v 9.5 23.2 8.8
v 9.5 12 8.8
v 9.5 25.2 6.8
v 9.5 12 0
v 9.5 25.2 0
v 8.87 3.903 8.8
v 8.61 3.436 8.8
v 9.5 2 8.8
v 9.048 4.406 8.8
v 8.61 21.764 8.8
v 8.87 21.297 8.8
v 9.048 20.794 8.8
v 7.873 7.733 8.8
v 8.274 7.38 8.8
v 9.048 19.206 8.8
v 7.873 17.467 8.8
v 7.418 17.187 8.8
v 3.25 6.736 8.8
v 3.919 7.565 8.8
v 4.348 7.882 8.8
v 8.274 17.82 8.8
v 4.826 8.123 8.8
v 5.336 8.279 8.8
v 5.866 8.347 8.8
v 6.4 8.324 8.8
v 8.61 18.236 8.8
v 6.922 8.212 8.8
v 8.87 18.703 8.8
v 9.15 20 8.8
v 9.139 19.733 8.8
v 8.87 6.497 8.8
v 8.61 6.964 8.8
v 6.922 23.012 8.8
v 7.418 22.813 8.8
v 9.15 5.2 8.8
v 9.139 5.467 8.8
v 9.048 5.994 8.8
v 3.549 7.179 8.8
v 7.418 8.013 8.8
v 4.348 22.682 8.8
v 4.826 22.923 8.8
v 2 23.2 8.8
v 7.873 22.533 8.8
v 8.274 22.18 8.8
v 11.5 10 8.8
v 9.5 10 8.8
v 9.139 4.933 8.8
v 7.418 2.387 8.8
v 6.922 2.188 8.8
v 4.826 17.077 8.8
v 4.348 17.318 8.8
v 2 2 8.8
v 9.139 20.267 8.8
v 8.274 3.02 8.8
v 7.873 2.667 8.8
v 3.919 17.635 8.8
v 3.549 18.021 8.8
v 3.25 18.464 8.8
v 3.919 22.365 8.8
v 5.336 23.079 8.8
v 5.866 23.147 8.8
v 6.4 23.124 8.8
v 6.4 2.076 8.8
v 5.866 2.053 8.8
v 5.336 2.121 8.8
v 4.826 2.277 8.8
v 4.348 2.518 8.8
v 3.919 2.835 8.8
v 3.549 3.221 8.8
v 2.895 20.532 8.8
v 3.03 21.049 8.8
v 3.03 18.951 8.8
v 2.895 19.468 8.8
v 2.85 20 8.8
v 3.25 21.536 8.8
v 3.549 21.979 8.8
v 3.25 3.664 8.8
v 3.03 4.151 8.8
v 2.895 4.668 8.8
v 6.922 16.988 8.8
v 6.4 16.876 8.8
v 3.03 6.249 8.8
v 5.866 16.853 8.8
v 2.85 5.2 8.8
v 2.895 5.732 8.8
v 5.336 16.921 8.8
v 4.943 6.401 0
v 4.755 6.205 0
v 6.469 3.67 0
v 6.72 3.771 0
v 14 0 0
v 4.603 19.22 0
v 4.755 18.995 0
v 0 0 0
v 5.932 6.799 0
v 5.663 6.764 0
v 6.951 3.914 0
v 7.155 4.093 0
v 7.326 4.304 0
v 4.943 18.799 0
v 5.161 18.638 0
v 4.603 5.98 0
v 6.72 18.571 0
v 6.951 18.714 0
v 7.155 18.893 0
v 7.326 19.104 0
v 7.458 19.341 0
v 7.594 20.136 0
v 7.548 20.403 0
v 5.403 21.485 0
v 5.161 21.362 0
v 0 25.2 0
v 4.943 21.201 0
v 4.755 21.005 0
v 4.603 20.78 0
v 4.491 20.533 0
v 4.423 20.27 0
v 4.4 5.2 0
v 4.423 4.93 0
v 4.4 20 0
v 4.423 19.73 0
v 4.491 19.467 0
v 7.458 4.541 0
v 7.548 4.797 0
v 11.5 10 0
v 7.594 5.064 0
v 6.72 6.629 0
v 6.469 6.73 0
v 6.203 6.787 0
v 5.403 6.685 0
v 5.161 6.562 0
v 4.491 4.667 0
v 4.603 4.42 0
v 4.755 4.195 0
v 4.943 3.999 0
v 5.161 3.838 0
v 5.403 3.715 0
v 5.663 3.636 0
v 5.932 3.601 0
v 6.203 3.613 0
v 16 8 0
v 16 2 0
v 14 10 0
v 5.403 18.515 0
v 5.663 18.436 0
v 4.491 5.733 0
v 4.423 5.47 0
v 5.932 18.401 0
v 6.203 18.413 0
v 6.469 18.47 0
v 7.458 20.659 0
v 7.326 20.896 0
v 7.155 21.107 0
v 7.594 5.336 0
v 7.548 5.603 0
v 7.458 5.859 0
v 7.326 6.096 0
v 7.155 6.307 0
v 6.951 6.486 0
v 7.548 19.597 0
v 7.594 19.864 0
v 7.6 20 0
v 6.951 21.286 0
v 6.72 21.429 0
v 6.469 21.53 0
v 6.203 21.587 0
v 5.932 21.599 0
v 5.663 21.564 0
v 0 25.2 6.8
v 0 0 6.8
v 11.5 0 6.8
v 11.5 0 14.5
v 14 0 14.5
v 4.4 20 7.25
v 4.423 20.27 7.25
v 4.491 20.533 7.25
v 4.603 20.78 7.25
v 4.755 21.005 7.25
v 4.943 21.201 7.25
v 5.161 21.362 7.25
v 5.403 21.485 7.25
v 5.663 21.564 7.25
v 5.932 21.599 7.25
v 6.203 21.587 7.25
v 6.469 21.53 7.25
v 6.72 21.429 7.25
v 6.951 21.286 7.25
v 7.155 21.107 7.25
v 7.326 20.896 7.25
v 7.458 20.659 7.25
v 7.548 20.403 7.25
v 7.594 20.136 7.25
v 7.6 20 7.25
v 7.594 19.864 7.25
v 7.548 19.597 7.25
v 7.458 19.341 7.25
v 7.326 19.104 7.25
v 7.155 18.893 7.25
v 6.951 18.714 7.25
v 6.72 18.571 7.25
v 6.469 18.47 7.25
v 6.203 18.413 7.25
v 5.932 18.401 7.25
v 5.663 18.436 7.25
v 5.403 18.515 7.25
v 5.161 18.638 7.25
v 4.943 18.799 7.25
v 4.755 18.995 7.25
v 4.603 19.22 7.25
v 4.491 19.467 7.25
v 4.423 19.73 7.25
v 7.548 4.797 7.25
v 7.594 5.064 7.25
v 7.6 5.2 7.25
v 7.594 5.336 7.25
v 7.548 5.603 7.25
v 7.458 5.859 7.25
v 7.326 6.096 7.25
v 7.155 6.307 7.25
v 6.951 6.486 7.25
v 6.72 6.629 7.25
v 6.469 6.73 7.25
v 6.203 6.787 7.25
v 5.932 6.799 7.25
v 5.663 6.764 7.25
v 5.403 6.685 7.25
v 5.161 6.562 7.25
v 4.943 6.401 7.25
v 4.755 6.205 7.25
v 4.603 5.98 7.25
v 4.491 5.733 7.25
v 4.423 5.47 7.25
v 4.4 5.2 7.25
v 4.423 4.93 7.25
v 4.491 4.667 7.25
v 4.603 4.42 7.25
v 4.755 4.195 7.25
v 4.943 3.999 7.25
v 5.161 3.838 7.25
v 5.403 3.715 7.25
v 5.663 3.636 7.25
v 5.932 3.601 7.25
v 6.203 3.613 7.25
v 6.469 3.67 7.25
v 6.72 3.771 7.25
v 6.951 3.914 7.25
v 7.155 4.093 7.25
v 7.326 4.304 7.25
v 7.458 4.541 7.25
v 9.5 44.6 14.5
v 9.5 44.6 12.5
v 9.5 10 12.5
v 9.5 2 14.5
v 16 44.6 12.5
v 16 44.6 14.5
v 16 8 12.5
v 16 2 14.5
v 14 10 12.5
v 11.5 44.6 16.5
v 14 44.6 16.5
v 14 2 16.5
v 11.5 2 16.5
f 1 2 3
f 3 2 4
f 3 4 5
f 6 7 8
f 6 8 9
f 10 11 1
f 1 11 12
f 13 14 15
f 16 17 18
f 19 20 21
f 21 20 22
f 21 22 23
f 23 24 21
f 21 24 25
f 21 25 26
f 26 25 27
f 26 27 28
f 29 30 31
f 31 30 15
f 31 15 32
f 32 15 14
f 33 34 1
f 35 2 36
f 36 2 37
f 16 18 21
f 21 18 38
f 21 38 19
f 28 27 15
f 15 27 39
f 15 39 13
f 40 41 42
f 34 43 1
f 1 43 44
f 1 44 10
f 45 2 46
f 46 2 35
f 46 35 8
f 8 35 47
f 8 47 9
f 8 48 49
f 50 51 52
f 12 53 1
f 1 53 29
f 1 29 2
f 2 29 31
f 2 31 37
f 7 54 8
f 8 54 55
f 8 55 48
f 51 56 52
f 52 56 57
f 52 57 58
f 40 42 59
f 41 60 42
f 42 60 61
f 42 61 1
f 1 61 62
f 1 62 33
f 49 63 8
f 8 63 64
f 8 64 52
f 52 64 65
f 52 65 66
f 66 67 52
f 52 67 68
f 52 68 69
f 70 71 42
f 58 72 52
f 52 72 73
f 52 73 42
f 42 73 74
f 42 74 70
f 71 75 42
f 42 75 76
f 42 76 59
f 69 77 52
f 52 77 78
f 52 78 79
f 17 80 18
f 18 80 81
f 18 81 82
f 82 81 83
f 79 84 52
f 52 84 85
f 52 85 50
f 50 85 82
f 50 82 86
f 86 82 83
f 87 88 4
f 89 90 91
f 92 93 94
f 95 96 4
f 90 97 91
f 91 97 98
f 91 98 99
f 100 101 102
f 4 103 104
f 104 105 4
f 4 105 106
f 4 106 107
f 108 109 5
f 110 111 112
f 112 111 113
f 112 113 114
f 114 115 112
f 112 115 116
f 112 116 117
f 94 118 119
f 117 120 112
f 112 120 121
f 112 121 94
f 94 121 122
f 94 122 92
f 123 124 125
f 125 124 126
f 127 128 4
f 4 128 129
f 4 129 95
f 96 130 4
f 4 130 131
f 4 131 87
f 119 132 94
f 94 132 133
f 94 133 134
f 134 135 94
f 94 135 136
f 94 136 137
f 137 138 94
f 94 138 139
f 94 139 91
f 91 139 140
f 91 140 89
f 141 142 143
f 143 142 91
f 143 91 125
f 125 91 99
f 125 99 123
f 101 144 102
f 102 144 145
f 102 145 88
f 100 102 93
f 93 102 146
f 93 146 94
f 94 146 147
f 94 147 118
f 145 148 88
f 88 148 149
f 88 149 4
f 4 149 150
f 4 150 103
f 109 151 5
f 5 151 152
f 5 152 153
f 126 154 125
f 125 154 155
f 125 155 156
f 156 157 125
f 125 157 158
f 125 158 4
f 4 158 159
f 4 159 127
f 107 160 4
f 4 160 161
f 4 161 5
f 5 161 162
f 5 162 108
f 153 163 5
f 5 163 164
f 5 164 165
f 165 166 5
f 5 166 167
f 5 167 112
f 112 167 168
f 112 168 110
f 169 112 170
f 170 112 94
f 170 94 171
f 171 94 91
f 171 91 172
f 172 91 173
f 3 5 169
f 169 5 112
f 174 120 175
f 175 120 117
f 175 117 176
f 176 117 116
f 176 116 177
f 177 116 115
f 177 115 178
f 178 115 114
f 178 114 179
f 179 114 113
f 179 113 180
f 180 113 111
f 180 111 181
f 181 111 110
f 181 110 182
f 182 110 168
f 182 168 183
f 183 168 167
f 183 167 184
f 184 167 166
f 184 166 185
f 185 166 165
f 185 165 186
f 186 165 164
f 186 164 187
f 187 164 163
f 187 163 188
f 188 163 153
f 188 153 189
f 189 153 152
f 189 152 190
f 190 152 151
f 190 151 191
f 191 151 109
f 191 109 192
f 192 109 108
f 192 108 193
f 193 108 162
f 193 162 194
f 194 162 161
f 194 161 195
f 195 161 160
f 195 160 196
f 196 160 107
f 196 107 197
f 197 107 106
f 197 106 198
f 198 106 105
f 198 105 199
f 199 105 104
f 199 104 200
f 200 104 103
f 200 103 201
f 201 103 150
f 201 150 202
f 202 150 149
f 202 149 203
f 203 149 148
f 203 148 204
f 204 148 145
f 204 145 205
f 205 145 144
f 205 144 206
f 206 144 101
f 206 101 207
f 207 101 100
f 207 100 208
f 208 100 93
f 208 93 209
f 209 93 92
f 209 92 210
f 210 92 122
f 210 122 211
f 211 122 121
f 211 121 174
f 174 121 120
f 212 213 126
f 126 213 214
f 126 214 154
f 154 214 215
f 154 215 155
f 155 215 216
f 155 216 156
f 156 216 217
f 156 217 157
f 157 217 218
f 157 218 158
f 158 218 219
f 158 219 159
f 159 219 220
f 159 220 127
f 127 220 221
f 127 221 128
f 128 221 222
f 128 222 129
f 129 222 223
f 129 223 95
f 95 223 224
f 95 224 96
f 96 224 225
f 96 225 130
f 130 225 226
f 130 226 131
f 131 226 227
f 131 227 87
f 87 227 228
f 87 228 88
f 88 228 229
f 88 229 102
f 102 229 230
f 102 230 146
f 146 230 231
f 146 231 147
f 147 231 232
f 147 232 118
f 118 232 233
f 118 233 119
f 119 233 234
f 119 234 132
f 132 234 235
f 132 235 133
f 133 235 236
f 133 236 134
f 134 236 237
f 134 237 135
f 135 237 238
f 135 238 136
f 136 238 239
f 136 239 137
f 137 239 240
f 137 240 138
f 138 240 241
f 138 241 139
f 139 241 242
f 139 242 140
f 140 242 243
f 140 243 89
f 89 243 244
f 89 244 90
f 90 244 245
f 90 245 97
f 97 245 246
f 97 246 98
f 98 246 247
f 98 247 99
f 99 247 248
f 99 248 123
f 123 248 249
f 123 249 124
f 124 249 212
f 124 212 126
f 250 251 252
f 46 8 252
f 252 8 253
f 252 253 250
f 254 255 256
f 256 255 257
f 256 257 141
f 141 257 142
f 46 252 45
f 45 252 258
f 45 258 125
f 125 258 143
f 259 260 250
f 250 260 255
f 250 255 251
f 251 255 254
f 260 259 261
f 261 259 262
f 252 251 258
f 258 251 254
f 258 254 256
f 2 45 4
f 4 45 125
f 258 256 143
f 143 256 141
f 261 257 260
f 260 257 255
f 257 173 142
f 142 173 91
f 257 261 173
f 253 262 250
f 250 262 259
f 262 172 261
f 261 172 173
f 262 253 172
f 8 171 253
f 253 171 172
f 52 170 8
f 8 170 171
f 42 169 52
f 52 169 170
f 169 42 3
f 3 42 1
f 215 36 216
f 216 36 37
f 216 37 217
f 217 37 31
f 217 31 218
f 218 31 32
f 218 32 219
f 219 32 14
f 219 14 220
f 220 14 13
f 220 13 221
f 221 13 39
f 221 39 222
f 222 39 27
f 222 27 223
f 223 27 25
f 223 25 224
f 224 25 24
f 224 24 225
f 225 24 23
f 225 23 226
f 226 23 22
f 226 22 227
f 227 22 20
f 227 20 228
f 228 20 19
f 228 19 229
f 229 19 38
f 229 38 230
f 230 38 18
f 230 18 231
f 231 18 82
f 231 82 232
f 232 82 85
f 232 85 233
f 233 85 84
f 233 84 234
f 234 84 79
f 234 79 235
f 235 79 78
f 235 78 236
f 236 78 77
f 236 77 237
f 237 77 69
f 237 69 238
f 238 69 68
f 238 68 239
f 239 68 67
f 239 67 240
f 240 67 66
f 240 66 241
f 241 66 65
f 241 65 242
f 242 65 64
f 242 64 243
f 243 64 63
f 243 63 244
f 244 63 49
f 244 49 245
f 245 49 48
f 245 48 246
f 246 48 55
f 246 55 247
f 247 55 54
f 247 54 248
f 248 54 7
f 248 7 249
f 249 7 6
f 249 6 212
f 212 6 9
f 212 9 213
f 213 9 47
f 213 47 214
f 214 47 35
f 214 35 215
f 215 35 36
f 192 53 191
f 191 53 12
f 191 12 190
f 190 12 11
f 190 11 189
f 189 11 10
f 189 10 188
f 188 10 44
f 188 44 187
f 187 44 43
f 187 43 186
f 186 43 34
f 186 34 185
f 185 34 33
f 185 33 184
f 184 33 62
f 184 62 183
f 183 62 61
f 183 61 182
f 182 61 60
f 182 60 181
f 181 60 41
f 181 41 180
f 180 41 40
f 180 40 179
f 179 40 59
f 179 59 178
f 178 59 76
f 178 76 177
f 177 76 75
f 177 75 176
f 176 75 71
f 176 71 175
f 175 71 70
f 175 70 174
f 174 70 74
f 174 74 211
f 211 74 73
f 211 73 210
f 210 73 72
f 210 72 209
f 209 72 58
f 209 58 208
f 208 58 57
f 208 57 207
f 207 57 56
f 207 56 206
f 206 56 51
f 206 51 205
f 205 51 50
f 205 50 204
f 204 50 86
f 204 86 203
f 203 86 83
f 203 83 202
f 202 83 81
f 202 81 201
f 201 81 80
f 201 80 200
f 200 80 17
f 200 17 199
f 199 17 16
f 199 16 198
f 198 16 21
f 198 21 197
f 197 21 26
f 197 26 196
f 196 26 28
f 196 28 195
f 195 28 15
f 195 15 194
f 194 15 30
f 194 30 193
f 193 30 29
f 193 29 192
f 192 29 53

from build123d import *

# Parameters (mm, degrees)
SKETCH1_R                       = 1.6
BOSS_EXTRUDE1_DEPTH             = 8.8
SKETCH2_W                       = 6.5
SKETCH2_H                       = 10
BOSS_EXTRUDE2_DEPTH             = 3.7
BOSS_EXTRUDE2_DIRECTION_2_REACH = 30.332
SKETCH3_W                       = 6.5
SKETCH3_H                       = 44.6
BOSS_EXTRUDE3_DEPTH             = 4
CHAMFER1_SIZE                   = 2
CHAMFER2_SIZE                   = 1.55


with BuildPart() as part:
    # Sketch1 → Boss-Extrude1 (new body)
    with BuildSketch(Plane.XY):
        Polygon((0, 0), (8, 0), (9.5, 0), (9.5, 25.2), (8, 25.2), (0, 25.2), align=None)
        with Locations((6, 20)):
            Circle(SKETCH1_R, mode=Mode.SUBTRACT)
        with Locations(Location((6, 5.2, 0), (0, 0, 180))):
            Circle(SKETCH1_R, mode=Mode.SUBTRACT)
    extrude(amount=BOSS_EXTRUDE1_DEPTH)

    # Sketch2 → Boss-Extrude2 (add)
    with BuildSketch(Plane.XY.offset(8.8)):
        with Locations((12.75, 5)):
            Rectangle(SKETCH2_W, SKETCH2_H)
    extrude(amount=BOSS_EXTRUDE2_DEPTH)

    # Boss-Extrude2 direction 2: up to this face of the body (flat: up to its plane)
    boss_extrude2_direction_2_end = Plane(part.part.faces().sort_by_distance((4.659964898, 12.6, 0))[0])
    # Sketch2 → Boss-Extrude2 direction 2 (add, up to the picked face)
    with BuildSketch(Plane.XY.offset(8.8), mode=Mode.PRIVATE) as boss_extrude2_direction_2_sk1:
        with Locations((12.75, 5)):
            Rectangle(SKETCH2_W, SKETCH2_H)
    boss_extrude2_direction_2_tool1 = split(extrude(boss_extrude2_direction_2_sk1.sketch, amount=-BOSS_EXTRUDE2_DIRECTION_2_REACH, mode=Mode.PRIVATE), bisect_by=boss_extrude2_direction_2_end, keep=Keep.BOTH, mode=Mode.PRIVATE)
    add(boss_extrude2_direction_2_tool1.solids().sort_by(Axis((12.75, 5, 8.8), (0, 0, -1)))[0])

    # Sketch3 → Boss-Extrude3 (add)
    with BuildSketch(Plane.XY.offset(12.5)):
        with Locations((12.75, 22.3)):
            Rectangle(SKETCH3_W, SKETCH3_H)
    extrude(amount=BOSS_EXTRUDE3_DEPTH)

    # Chamfer1
    chamfer1_edges = [part.edges().sort_by_distance(p)[0] for p in [
        (4.75, 25.2, 8.8),
        (9.5, 0, 12.65),
        (16, 0, 8.25),
        (16, 10, 6.25),
        (9.5, 10, 4.4),
        (9.5, 22.3, 16.5),
        (12.75, 0, 16.5),
        (16, 22.3, 16.5),
        (0, 12.6, 8.8),
        (4.75, 0, 8.8),
    ]]
    chamfer(chamfer1_edges, length=CHAMFER1_SIZE)

    # Chamfer2
    chamfer2_edges = [part.edges().sort_by_distance(p)[0] for p in [
        (4.4, 20, 8.8),
        (7.6, 5.2, 8.8),
    ]]
    chamfer(chamfer2_edges, length=CHAMFER2_SIZE)


solid = part.part
